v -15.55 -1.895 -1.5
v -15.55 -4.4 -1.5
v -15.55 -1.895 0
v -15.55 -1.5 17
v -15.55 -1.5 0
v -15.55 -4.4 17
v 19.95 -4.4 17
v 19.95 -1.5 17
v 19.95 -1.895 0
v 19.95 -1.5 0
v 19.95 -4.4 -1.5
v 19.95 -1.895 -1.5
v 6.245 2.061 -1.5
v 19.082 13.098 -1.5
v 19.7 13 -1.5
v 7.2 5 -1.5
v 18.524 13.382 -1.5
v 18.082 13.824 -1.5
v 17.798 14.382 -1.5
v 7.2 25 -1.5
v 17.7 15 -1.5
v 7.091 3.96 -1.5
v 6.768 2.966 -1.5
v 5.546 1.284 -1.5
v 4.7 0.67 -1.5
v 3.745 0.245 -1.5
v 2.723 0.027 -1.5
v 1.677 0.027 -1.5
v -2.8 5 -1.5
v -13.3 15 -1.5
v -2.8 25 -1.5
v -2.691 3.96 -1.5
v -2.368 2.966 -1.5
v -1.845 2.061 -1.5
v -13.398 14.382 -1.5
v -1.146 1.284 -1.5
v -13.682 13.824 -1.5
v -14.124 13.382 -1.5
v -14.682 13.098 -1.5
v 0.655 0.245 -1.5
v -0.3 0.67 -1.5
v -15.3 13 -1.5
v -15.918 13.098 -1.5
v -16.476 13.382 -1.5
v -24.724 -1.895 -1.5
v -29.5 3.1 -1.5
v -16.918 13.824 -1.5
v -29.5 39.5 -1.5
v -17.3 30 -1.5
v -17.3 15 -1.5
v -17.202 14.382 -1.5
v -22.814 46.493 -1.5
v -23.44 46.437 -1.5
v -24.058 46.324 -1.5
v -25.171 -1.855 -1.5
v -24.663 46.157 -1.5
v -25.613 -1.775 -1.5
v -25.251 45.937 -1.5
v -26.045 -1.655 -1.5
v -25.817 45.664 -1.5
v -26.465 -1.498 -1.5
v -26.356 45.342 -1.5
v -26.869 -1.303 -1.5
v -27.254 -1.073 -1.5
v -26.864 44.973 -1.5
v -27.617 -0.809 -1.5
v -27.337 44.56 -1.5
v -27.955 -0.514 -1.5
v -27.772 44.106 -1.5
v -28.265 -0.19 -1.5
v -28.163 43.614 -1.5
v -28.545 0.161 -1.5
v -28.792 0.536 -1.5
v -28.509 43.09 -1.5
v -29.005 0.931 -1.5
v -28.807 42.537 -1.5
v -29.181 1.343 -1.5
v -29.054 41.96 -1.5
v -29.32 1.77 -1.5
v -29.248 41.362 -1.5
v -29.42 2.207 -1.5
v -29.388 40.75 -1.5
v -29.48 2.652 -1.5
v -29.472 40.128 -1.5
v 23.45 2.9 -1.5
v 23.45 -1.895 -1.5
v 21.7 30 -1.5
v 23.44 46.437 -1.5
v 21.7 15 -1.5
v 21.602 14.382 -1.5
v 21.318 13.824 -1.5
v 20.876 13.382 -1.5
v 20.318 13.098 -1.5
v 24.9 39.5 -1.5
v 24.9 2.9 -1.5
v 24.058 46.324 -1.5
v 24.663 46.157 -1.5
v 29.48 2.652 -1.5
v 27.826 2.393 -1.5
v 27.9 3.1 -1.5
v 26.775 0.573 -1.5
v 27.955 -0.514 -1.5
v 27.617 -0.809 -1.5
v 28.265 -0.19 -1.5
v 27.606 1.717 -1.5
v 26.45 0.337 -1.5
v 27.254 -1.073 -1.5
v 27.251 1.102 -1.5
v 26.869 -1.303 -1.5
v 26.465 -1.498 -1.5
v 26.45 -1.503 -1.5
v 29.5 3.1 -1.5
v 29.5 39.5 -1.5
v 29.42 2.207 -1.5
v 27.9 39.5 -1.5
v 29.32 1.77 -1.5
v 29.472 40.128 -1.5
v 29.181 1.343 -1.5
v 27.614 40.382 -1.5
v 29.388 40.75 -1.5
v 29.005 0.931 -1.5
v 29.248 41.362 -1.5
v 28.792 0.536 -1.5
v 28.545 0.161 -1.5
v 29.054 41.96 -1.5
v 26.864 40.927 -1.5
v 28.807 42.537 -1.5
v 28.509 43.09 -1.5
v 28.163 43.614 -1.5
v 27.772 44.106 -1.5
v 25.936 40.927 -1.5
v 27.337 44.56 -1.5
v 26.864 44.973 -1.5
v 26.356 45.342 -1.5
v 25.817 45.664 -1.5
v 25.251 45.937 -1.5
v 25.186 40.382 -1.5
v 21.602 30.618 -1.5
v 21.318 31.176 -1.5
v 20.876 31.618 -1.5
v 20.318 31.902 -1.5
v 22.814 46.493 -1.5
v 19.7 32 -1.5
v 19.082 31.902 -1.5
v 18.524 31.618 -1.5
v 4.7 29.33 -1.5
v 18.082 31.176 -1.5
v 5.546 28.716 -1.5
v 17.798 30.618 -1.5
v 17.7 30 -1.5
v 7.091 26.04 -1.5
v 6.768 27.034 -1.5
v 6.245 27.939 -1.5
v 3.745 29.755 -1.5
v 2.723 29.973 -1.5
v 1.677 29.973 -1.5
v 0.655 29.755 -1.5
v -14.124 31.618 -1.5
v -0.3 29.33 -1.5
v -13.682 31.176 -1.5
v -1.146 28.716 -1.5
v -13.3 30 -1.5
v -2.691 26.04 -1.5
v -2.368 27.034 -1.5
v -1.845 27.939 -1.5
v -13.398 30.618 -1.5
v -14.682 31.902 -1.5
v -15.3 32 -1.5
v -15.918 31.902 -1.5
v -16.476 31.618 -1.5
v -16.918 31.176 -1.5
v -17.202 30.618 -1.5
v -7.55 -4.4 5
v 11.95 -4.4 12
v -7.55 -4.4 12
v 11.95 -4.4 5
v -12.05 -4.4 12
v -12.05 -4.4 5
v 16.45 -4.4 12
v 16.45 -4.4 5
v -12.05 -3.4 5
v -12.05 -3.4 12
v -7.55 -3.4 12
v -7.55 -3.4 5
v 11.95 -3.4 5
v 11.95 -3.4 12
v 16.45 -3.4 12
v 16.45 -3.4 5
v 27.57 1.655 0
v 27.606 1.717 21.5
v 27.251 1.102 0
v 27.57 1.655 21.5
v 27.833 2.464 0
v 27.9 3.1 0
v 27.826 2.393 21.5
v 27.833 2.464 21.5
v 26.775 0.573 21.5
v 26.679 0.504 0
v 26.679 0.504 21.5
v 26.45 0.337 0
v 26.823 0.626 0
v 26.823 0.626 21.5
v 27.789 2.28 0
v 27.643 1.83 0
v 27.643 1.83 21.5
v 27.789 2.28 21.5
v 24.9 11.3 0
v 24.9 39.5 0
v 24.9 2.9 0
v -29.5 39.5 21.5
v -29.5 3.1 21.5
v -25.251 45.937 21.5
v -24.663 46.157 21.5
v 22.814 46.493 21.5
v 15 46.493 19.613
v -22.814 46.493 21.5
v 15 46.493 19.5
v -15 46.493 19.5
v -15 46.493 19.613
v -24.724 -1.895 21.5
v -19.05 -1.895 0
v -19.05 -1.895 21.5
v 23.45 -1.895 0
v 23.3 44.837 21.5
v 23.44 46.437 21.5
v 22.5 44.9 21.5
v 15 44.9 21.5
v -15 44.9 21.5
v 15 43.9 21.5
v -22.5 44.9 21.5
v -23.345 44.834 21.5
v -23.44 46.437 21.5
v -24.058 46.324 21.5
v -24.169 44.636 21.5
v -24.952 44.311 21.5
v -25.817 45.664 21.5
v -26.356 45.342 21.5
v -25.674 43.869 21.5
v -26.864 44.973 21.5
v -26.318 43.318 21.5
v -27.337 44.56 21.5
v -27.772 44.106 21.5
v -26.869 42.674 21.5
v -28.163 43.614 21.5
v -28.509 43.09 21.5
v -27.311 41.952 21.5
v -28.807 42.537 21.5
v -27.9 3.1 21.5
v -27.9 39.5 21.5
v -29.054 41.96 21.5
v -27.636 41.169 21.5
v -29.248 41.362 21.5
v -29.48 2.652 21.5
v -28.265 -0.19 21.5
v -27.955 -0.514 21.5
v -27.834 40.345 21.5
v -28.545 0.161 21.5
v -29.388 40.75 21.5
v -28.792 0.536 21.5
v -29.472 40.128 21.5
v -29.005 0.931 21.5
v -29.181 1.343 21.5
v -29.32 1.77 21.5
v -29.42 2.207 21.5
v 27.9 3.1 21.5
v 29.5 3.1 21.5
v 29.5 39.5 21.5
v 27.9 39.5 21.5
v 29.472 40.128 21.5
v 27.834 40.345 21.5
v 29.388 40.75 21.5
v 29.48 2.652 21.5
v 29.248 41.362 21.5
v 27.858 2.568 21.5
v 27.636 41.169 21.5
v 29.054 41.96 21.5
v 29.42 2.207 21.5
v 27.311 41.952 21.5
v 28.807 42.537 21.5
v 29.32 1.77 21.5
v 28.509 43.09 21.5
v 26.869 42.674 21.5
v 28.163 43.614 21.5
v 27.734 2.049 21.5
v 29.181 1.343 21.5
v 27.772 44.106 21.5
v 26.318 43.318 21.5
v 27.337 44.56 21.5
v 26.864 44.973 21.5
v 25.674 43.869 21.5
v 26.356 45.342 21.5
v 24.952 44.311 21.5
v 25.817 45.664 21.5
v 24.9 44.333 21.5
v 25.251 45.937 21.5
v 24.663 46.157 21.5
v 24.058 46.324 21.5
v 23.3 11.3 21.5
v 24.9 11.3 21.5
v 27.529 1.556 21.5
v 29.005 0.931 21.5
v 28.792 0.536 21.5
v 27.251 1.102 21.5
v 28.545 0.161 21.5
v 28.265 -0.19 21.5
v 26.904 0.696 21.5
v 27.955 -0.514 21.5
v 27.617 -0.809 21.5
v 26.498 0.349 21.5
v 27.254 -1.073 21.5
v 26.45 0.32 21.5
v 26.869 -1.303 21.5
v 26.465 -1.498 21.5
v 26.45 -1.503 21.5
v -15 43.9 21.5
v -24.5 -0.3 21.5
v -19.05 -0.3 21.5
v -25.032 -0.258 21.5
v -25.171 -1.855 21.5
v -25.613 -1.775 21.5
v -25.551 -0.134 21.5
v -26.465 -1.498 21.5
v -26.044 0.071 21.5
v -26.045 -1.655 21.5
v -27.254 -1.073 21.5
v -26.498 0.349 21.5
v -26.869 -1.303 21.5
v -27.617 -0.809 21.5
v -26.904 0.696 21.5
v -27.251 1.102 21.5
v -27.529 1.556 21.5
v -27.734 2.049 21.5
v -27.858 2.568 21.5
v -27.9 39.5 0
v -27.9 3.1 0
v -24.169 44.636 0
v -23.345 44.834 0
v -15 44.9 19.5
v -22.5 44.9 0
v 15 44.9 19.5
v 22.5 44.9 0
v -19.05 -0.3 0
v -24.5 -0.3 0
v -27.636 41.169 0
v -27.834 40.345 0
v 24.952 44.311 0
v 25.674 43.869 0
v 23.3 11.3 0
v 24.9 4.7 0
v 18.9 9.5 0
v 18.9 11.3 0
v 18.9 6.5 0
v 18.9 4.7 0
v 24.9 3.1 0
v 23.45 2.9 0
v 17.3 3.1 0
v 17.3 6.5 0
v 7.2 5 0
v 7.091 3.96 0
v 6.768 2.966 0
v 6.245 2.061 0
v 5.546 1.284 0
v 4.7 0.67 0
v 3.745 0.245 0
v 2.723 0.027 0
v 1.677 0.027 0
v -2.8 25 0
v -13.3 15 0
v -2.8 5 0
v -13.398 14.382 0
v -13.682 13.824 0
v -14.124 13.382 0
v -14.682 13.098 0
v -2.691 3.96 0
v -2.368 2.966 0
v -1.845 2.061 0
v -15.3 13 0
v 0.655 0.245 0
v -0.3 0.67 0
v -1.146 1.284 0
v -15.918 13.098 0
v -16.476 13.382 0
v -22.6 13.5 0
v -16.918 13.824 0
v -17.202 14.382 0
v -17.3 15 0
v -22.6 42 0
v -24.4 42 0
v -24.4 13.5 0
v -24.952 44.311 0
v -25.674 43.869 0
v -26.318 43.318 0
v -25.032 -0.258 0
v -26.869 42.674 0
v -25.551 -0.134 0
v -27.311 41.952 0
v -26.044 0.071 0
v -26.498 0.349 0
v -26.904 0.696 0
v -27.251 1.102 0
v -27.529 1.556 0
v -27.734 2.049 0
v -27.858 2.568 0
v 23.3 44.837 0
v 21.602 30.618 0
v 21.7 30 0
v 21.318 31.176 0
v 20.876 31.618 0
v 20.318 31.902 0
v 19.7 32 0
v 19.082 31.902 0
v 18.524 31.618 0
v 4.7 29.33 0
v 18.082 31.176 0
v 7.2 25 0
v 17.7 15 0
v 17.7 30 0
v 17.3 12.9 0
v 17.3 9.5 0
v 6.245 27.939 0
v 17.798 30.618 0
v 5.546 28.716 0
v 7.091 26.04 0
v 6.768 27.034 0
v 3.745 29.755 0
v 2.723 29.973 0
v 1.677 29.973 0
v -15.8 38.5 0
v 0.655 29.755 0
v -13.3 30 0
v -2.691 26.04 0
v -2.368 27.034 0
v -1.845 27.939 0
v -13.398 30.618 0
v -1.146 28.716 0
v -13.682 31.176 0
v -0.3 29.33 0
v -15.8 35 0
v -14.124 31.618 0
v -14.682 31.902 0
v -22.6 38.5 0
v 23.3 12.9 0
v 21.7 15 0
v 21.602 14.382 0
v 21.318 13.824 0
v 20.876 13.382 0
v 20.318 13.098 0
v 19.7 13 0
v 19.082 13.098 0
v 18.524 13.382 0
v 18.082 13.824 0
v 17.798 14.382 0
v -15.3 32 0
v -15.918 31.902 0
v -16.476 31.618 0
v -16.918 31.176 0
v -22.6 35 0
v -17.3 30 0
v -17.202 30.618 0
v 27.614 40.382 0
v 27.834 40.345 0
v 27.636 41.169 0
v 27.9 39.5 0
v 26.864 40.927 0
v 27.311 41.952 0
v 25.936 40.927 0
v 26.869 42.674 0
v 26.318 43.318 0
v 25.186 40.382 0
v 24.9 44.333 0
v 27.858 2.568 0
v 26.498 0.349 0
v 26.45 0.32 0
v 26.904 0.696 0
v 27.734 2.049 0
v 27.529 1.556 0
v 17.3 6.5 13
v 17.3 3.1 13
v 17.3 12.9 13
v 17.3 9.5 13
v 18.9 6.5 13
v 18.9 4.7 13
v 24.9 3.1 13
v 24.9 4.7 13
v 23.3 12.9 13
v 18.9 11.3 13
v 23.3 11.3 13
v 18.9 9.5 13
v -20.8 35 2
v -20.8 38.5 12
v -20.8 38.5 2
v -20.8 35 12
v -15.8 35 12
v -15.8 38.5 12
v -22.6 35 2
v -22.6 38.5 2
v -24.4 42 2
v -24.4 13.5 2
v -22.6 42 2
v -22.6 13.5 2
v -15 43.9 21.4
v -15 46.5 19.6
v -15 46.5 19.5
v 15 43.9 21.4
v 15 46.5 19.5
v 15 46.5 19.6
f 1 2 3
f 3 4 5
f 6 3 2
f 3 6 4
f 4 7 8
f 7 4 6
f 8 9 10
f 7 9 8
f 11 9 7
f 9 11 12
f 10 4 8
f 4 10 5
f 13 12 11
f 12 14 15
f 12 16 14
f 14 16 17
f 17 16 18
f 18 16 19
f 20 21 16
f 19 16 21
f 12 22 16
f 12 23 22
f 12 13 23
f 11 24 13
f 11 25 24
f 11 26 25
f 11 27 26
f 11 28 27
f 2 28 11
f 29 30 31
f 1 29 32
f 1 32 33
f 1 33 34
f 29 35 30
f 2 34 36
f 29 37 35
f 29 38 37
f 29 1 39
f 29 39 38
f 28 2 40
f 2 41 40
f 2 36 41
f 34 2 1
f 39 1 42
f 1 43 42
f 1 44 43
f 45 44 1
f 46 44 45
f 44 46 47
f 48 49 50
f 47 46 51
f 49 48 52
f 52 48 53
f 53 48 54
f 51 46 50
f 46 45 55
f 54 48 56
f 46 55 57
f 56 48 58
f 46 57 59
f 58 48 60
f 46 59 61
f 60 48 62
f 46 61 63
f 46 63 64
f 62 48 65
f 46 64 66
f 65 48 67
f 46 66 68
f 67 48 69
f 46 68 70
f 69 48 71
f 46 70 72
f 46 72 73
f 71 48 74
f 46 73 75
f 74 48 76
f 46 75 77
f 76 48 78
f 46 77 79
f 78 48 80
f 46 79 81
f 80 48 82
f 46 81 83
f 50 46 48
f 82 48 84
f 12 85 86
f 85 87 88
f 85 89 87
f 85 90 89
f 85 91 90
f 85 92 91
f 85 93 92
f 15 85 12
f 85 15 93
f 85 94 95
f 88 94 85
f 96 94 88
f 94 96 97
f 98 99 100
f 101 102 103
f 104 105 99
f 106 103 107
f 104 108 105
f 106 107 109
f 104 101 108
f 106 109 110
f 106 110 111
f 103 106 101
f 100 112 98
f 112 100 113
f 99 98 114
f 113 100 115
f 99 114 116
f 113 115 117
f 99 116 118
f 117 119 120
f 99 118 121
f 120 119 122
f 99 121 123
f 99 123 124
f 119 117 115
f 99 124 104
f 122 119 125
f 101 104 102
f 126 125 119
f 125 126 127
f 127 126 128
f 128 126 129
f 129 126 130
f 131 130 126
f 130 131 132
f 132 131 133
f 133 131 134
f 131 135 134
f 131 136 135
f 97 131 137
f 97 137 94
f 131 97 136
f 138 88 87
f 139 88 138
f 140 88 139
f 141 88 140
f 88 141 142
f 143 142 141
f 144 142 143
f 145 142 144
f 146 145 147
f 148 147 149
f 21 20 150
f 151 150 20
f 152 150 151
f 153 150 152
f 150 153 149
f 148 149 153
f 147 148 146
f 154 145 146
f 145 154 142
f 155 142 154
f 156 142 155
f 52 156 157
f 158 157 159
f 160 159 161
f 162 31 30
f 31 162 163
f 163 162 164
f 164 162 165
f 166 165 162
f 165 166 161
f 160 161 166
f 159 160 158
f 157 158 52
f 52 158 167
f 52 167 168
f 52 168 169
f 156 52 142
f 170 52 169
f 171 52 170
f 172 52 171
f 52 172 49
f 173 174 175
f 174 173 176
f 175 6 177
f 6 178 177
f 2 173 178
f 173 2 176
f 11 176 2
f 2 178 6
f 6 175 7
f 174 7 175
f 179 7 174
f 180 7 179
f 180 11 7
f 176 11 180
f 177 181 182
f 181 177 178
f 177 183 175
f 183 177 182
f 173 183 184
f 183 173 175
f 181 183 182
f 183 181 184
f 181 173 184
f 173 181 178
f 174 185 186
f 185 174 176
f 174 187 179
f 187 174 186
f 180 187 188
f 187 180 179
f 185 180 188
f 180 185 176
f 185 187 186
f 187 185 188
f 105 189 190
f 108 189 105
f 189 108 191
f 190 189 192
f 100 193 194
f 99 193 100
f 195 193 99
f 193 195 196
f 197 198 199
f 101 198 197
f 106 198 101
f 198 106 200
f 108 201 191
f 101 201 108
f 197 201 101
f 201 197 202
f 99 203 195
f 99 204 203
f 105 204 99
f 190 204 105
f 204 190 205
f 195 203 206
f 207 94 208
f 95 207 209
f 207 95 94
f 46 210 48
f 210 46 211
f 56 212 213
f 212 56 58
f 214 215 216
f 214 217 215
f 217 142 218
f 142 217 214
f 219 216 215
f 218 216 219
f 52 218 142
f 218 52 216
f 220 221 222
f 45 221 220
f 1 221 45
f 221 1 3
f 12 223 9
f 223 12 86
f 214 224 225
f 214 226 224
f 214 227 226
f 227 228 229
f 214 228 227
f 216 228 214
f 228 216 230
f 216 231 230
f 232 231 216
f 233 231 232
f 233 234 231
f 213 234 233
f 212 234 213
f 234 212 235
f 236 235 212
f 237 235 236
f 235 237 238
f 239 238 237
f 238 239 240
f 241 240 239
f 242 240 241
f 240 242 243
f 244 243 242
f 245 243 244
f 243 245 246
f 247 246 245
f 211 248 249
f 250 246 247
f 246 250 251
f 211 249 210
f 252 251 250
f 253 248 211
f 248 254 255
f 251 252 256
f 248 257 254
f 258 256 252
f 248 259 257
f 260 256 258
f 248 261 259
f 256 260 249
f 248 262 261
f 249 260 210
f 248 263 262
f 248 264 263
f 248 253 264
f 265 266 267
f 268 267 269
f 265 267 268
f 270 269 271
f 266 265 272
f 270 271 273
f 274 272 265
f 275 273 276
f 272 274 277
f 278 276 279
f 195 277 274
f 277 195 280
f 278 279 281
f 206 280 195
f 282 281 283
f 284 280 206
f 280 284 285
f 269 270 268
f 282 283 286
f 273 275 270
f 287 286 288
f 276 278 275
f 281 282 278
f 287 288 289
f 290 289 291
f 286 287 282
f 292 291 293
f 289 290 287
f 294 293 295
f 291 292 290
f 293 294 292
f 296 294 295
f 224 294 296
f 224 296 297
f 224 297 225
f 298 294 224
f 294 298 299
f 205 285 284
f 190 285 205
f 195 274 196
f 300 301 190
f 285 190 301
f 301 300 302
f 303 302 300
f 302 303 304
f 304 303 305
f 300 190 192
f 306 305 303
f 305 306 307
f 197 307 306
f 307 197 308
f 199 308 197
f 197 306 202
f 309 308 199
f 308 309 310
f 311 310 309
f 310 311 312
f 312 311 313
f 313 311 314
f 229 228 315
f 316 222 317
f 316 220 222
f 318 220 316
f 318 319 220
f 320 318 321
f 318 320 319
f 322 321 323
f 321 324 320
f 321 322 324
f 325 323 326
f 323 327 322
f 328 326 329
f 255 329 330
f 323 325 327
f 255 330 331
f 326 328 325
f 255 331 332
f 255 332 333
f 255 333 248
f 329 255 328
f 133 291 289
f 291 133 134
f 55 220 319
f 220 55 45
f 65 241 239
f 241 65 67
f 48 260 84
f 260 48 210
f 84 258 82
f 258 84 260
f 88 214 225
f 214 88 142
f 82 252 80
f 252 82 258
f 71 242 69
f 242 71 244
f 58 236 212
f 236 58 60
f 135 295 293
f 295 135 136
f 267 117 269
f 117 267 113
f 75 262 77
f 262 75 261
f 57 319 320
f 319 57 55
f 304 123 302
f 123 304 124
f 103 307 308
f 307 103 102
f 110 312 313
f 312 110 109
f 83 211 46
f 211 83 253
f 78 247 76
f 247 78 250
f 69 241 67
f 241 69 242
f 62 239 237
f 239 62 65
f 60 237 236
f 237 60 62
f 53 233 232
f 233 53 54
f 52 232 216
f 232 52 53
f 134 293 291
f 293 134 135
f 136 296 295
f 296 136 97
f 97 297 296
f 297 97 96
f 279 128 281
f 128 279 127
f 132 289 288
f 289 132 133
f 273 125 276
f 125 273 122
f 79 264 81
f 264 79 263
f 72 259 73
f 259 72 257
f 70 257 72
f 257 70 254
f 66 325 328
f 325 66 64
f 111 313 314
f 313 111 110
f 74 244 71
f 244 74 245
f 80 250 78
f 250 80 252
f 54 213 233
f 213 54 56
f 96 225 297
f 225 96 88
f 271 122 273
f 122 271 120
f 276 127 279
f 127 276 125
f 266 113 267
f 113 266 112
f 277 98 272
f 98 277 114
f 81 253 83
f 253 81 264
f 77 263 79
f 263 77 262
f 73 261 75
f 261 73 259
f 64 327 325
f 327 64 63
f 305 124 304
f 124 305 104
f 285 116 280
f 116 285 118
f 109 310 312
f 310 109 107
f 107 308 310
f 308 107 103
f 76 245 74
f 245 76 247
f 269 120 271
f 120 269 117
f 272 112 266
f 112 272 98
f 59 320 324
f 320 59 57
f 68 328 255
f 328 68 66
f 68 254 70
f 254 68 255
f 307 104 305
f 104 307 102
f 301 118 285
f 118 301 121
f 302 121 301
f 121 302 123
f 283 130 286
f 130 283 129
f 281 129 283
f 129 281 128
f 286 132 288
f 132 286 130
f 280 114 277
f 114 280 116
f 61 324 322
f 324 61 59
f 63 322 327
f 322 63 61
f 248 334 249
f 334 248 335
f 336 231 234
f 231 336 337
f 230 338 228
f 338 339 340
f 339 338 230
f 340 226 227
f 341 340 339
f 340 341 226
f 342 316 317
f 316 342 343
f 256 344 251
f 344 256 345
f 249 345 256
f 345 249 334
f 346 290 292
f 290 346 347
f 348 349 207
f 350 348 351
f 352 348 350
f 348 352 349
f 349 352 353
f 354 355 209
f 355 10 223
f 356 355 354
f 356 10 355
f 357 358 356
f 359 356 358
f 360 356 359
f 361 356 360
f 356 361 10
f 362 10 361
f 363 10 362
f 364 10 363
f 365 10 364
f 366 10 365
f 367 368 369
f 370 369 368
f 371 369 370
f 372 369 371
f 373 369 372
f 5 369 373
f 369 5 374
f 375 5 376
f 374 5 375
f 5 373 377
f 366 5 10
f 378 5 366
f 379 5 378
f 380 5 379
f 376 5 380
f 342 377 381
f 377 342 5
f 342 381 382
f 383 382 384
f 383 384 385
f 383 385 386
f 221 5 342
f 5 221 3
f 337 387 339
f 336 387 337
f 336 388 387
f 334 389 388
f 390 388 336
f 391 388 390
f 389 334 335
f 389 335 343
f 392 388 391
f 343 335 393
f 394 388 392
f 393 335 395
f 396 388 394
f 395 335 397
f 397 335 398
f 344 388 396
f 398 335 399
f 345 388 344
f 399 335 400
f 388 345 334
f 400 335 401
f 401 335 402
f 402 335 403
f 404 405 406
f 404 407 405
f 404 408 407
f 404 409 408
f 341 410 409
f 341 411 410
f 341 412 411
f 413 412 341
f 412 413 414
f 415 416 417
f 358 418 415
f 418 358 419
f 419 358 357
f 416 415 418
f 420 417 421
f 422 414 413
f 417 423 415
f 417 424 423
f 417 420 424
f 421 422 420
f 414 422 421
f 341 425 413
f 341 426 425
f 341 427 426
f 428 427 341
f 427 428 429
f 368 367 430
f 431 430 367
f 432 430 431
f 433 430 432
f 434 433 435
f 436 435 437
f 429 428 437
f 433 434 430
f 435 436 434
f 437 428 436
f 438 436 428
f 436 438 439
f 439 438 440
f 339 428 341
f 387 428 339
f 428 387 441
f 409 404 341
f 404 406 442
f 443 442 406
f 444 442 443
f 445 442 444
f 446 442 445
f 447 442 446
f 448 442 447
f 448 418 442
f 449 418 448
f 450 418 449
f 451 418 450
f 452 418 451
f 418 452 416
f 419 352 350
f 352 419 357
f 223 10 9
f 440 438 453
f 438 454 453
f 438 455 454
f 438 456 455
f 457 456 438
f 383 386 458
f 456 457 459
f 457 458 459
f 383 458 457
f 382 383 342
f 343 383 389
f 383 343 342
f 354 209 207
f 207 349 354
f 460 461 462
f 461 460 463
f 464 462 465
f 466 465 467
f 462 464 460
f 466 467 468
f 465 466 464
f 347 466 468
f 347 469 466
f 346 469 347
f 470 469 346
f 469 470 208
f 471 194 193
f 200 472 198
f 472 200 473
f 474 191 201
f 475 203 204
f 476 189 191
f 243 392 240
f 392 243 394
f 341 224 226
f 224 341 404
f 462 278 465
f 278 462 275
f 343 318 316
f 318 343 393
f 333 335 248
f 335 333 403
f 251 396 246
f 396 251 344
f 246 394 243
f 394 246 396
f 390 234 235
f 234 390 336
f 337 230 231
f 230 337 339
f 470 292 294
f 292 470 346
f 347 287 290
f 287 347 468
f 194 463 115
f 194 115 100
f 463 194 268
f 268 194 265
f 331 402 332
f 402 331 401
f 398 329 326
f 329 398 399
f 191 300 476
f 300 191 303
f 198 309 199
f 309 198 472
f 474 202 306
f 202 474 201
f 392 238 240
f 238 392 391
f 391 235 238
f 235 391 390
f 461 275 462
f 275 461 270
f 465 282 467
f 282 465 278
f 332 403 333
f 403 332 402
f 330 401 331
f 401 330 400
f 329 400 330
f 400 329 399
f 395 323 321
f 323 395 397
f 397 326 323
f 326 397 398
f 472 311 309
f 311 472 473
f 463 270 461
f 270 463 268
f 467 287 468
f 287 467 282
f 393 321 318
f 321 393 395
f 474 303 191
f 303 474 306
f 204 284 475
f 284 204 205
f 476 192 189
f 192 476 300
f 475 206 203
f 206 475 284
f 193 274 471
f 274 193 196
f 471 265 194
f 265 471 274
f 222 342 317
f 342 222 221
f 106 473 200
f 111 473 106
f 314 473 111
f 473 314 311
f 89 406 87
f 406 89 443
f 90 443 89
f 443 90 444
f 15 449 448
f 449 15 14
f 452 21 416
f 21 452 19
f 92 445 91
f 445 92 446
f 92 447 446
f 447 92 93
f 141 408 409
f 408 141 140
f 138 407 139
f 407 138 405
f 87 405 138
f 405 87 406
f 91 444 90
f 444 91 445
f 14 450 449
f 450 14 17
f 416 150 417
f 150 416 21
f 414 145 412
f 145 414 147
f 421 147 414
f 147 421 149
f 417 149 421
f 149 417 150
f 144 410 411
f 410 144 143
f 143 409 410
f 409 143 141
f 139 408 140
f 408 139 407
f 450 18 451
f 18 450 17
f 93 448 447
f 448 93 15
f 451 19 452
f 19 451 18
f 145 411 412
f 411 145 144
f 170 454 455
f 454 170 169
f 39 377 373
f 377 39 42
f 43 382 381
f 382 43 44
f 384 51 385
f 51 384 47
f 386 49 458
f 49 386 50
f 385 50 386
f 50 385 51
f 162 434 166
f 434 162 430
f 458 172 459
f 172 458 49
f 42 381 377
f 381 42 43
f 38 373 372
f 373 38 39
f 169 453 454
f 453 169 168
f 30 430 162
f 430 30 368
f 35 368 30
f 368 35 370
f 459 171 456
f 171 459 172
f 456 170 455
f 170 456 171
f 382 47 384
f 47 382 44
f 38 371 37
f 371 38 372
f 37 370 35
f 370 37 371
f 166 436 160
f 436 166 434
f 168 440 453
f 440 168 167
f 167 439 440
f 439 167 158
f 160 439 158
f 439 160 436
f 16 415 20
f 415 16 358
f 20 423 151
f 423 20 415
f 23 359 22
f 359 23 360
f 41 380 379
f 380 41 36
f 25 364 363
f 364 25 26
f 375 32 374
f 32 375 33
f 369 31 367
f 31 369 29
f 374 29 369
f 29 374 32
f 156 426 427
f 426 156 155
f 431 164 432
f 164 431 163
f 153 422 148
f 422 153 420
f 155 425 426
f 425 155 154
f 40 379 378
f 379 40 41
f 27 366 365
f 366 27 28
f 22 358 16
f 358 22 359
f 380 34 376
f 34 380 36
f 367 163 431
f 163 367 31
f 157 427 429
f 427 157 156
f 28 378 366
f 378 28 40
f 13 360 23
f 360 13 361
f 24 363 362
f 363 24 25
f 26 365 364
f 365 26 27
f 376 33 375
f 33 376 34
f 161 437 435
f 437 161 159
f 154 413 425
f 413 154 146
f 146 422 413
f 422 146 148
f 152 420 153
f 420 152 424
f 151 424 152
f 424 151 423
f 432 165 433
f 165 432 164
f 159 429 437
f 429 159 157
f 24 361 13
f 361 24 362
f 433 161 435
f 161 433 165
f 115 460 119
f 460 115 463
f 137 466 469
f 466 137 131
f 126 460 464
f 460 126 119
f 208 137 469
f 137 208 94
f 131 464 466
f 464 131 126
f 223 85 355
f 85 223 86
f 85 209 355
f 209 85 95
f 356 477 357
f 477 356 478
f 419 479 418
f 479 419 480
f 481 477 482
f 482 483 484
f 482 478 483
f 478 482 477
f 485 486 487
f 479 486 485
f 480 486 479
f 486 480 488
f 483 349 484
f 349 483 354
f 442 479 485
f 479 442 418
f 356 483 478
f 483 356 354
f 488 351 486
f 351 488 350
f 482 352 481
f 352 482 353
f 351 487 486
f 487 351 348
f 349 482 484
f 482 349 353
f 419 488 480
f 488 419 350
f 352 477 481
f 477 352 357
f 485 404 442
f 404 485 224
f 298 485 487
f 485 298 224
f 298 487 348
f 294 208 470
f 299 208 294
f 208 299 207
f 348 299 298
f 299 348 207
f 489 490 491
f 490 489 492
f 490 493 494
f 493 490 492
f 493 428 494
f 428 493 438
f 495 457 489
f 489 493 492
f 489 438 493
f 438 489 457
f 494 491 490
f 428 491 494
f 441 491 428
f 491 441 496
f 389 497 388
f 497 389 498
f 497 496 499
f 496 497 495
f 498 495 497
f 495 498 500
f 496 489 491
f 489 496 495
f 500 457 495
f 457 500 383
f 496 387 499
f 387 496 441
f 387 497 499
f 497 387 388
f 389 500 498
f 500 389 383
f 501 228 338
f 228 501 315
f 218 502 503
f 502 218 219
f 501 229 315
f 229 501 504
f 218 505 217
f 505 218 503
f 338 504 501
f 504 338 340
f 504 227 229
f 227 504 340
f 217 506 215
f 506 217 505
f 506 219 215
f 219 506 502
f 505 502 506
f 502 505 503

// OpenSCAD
base_h=35.5;
base_w=17;
base_t=2.9;
base_space=base_h+7; //42;
base_offset=1.5;

fix_h=4.5;
fix_w=7;
fix_d=24/2;

arm_t=1.5;
arm_l=46.5;
arm_w=10;
arm_dist=35/2;
arm_hole=4;
arm_hole_l1=15;
arm_hole_l2=30;

side_t=1.6;
full_h=59;
full_w=21.5;
back_r=5;
front_r=7;
sw_hole=3;
sw_t=1.6;
b_o=1;

motor_hole_w=10;
motor_hole_l=30;
motor_shift=2.2;

//micro switch
msw_w=6+0.6;
msw_h=6;
msw_l=13;
msw_t=1.6;
msw_conn=3;

// cap
cap_t=1.0;
cap_sp=0.4; // space
cap_fix_h=5;
cap_fix_t=2;
cap_fix_w=5;
cap_fix_ofs=4.5;
lock_h=2;
lock_w=30;

module arm()
{
	hull()
	{
		translate([0, arm_hole_l1, -arm_t-1]) cylinder(h=arm_t+2, d=arm_hole, $fn=20);
		translate([0, arm_hole_l2, -arm_t-1]) cylinder(h=arm_t+2, d=arm_hole, $fn=20);
	}
}

module sides(hh, r_b, r_f, b, shrink)
{
	hull()
	{
	translate([ full_h/2-r_b, r_b-side_ofs, -b]) cylinder(h=hh+arm_t, r=r_b-shrink);
	translate([-full_h/2+r_b, r_b-side_ofs, -b]) cylinder(h=hh+arm_t, r=r_b-shrink);
	translate([ full_h/2-r_f, arm_l-r_f, -b]) cylinder(h=hh+arm_t, r=r_f-shrink);
	translate([-full_h/2+r_f, arm_l-r_f, -b]) cylinder(h=hh+arm_t, r=r_f-shrink);
	}
}

side_ofs=base_t-b_o;

module base()
{
	translate([motor_shift,-base_offset,0]) difference()
	{
		translate([-base_h/2, -base_t, -arm_t]) cube([base_h, base_t, base_w+arm_t]);
		translate([-fix_d-fix_h/2, -base_t-1, arm_w/2]) cube([fix_h, 2, fix_w]);
		translate([ fix_d-fix_h/2, -base_t-1, arm_w/2]) cube([fix_h, 2, fix_w]);
	}

	difference()
	{
		sides(full_w, back_r, front_r, arm_t, 0, $fn=70);
		sides(full_w+2, back_r, front_r, 0, side_t, $fn=40);
		translate([-base_space/2+motor_shift, -side_t-1, 0]) cube([base_space+sw_hole, side_t+2, full_w+1]);
		mirror([1,0,0])
		translate([-arm_dist-motor_shift, 0, 0]) arm();
		translate([-arm_dist+motor_shift, 0, 0]) arm();
		//translate([-motor_hole_w/2+motor_shift, 0, -base_t-1]) cube([motor_hole_w, arm_l-side_t, base_t+2]);
		hull()
		{
			translate([motor_shift, motor_hole_w/2, -base_t-1]) cylinder(d=motor_hole_w, h=base_t+2, $fn=30);
			translate([motor_shift, -motor_hole_w/2+motor_hole_l, -base_t-1]) cylinder(d=motor_hole_w, h=base_t+2, $fn=30);
		}
		
		
		translate([full_h/2-sw_t-sw_hole, back_r-side_ofs, -arm_t-1]) cube([sw_hole, arm_l+side_ofs-back_r-front_r, arm_t+full_w+2]);
		translate([full_h/2-sw_t-sw_hole/2, arm_l-front_r, -arm_t-1]) cylinder(h=arm_t+full_w+2, r=sw_hole/2, $fn=10);
		intersection()
		{
			translate([ full_h/2-back_r, back_r-side_ofs, -arm_t-1]) cylinder(h=full_w+arm_t+2, r=back_r-sw_t, $fn=30);
			translate([ full_h/2-sw_t-sw_hole, back_r-side_ofs-10+0.01, -arm_t-1]) cube([10,10,full_w+arm_t+2]);
		}
		translate([+base_space/2+motor_shift, -side_t-1, -arm_t-1]) cube([sw_hole, side_t+0.5+back_r-side_t, full_w+1]);

	}

	translate([full_h/2-sw_t-sw_hole-msw_h-msw_t+msw_h+msw_t-side_t, back_r-side_ofs+msw_w+msw_t*2-side_t, 0]) 
	cube([side_t, arm_l-(back_r-side_ofs)-(msw_w+msw_t*2), full_w]);
	// microswitch
	translate([full_h/2-sw_t-sw_hole-msw_h-msw_t, back_r-side_ofs, 0]) 
	difference()
	{
		cube([msw_h+msw_t, msw_w+msw_t*2, msw_l]);
		translate([msw_t, msw_t, 0]) cube([msw_h+1, msw_w, msw_l+1]);
		translate([-1, msw_t+msw_w/2-msw_conn/2, 0]) cube([msw_t+2, msw_conn, msw_l+1]);
	}

	// PCB holder
	translate([-full_h/2+side_t+2+1.5+1.5+2.1, 35, 0]) cube([5, 3.5, 12]);
	translate([-full_h/2+side_t+2+1.1, 35, 0]) cube([5+1.5+2.5, 3.5, 2]);
	translate([-full_h/2+side_t+2+1.5, 13.5, 0]) cube([1.8, 28.5, 2]);

  // esp8266 for size, % - not include in final render 
	%translate([-full_h/2+side_t+2, 0, 0])
	{
		color("green") cube([1.5, 43.2, 21]);
		color("blue") translate([1.5,21.9,3])cube([1.5, 21, 16]);
		color("grey") translate([3,23.5,5])cube([2.1, 15, 12]);
	}

	// lock
	hull()
	{
		translate([-lock_w/2, arm_l-side_t-lock_h/2, full_w-0.1]) cube([lock_w, side_t, 0.1]);
		translate([-lock_w/2, arm_l-side_t, full_w-lock_h]) cube([lock_w, side_t, 0.1]);
	}
}

module cap()
{
  difference()
	{
		hull()
		{
			$fn=50;
			translate([ full_h/2-back_r, back_r-side_ofs, 0]) cylinder(h=cap_t, r=back_r);
			translate([-full_h/2+back_r, back_r-side_ofs, 0]) cylinder(h=cap_t, r=back_r);
			translate([ full_h/2-front_r, arm_l-front_r, 0]) cylinder(h=cap_t, r=front_r);
			translate([-full_h/2+front_r, arm_l-front_r, 0]) cylinder(h=cap_t, r=front_r);
		}
		translate([full_h/2-sw_t-sw_hole, back_r-side_ofs-100, -cap_t+cap_sp]) cube([sw_hole+100, arm_l+side_ofs-back_r-front_r+100, cap_t]);
		translate([+base_space/2+motor_shift, -side_t-1, -cap_t+cap_sp]) cube([sw_hole, side_t+2, cap_t]);
	}
	translate([motor_shift-base_space/2+cap_sp, -base_t-base_offset, -full_w+base_w]) cube([base_space-cap_sp, base_t+cap_sp, full_w-base_w+cap_t]);
	translate([motor_shift-base_h/2+cap_fix_ofs, cap_sp-base_offset, -(full_w-base_w+cap_t+cap_fix_h)]) cube([cap_fix_w, 3, full_w-base_w+cap_t+cap_fix_h]);
	translate([motor_shift+base_h/2-cap_fix_ofs-cap_fix_w, cap_sp-base_offset, -(full_w-base_w+cap_t+cap_fix_h)]) cube([cap_fix_w, 3, full_w-base_w+cap_t+cap_fix_h]);
	translate([-full_h/2+side_t+2+1.5+1.5+2.5, 35, -cap_fix_h-2]) cube([5, 3.5, cap_fix_h+2]);
	translate([-full_h/2+side_t+2+1.5+1.5+2.5, 35, -cap_fix_h]) cube([5, arm_l-35-side_t-cap_sp, cap_fix_h]);

	// front lock
	hull()
	{
		translate([-full_h/2+side_t+2+1.5+1.5+2.5, arm_l-side_t-2-cap_sp-lock_h/2,  0]) cube([full_h-front_r-side_t-(2+1.5+1.5+2.5), 2, 0.1]);
		translate([-full_h/2+side_t+2+1.5+1.5+2.5, arm_l-side_t-2-cap_sp, -lock_h]) cube([full_h-front_r-side_t-(2+1.5+1.5+2.5), 2, 0.1]);
	}

	translate([full_h/2-sw_t-sw_hole-side_t-5, 35-5+arm_l-35-side_t-cap_sp, -cap_fix_h]) cube([5, 5, cap_fix_h]);
	// mswitch
//	translate([full_h/2-sw_t-sw_hole-msw_h-msw_t, back_r-side_ofs, -(full_w-msw_l)]) 
//		cube([msw_h+msw_t, msw_w+msw_t*2, full_w-msw_l]);
}

base(); //translate([0, 0, full_w+0.2]) cap();
//rotate([0,180,0]) cap();
